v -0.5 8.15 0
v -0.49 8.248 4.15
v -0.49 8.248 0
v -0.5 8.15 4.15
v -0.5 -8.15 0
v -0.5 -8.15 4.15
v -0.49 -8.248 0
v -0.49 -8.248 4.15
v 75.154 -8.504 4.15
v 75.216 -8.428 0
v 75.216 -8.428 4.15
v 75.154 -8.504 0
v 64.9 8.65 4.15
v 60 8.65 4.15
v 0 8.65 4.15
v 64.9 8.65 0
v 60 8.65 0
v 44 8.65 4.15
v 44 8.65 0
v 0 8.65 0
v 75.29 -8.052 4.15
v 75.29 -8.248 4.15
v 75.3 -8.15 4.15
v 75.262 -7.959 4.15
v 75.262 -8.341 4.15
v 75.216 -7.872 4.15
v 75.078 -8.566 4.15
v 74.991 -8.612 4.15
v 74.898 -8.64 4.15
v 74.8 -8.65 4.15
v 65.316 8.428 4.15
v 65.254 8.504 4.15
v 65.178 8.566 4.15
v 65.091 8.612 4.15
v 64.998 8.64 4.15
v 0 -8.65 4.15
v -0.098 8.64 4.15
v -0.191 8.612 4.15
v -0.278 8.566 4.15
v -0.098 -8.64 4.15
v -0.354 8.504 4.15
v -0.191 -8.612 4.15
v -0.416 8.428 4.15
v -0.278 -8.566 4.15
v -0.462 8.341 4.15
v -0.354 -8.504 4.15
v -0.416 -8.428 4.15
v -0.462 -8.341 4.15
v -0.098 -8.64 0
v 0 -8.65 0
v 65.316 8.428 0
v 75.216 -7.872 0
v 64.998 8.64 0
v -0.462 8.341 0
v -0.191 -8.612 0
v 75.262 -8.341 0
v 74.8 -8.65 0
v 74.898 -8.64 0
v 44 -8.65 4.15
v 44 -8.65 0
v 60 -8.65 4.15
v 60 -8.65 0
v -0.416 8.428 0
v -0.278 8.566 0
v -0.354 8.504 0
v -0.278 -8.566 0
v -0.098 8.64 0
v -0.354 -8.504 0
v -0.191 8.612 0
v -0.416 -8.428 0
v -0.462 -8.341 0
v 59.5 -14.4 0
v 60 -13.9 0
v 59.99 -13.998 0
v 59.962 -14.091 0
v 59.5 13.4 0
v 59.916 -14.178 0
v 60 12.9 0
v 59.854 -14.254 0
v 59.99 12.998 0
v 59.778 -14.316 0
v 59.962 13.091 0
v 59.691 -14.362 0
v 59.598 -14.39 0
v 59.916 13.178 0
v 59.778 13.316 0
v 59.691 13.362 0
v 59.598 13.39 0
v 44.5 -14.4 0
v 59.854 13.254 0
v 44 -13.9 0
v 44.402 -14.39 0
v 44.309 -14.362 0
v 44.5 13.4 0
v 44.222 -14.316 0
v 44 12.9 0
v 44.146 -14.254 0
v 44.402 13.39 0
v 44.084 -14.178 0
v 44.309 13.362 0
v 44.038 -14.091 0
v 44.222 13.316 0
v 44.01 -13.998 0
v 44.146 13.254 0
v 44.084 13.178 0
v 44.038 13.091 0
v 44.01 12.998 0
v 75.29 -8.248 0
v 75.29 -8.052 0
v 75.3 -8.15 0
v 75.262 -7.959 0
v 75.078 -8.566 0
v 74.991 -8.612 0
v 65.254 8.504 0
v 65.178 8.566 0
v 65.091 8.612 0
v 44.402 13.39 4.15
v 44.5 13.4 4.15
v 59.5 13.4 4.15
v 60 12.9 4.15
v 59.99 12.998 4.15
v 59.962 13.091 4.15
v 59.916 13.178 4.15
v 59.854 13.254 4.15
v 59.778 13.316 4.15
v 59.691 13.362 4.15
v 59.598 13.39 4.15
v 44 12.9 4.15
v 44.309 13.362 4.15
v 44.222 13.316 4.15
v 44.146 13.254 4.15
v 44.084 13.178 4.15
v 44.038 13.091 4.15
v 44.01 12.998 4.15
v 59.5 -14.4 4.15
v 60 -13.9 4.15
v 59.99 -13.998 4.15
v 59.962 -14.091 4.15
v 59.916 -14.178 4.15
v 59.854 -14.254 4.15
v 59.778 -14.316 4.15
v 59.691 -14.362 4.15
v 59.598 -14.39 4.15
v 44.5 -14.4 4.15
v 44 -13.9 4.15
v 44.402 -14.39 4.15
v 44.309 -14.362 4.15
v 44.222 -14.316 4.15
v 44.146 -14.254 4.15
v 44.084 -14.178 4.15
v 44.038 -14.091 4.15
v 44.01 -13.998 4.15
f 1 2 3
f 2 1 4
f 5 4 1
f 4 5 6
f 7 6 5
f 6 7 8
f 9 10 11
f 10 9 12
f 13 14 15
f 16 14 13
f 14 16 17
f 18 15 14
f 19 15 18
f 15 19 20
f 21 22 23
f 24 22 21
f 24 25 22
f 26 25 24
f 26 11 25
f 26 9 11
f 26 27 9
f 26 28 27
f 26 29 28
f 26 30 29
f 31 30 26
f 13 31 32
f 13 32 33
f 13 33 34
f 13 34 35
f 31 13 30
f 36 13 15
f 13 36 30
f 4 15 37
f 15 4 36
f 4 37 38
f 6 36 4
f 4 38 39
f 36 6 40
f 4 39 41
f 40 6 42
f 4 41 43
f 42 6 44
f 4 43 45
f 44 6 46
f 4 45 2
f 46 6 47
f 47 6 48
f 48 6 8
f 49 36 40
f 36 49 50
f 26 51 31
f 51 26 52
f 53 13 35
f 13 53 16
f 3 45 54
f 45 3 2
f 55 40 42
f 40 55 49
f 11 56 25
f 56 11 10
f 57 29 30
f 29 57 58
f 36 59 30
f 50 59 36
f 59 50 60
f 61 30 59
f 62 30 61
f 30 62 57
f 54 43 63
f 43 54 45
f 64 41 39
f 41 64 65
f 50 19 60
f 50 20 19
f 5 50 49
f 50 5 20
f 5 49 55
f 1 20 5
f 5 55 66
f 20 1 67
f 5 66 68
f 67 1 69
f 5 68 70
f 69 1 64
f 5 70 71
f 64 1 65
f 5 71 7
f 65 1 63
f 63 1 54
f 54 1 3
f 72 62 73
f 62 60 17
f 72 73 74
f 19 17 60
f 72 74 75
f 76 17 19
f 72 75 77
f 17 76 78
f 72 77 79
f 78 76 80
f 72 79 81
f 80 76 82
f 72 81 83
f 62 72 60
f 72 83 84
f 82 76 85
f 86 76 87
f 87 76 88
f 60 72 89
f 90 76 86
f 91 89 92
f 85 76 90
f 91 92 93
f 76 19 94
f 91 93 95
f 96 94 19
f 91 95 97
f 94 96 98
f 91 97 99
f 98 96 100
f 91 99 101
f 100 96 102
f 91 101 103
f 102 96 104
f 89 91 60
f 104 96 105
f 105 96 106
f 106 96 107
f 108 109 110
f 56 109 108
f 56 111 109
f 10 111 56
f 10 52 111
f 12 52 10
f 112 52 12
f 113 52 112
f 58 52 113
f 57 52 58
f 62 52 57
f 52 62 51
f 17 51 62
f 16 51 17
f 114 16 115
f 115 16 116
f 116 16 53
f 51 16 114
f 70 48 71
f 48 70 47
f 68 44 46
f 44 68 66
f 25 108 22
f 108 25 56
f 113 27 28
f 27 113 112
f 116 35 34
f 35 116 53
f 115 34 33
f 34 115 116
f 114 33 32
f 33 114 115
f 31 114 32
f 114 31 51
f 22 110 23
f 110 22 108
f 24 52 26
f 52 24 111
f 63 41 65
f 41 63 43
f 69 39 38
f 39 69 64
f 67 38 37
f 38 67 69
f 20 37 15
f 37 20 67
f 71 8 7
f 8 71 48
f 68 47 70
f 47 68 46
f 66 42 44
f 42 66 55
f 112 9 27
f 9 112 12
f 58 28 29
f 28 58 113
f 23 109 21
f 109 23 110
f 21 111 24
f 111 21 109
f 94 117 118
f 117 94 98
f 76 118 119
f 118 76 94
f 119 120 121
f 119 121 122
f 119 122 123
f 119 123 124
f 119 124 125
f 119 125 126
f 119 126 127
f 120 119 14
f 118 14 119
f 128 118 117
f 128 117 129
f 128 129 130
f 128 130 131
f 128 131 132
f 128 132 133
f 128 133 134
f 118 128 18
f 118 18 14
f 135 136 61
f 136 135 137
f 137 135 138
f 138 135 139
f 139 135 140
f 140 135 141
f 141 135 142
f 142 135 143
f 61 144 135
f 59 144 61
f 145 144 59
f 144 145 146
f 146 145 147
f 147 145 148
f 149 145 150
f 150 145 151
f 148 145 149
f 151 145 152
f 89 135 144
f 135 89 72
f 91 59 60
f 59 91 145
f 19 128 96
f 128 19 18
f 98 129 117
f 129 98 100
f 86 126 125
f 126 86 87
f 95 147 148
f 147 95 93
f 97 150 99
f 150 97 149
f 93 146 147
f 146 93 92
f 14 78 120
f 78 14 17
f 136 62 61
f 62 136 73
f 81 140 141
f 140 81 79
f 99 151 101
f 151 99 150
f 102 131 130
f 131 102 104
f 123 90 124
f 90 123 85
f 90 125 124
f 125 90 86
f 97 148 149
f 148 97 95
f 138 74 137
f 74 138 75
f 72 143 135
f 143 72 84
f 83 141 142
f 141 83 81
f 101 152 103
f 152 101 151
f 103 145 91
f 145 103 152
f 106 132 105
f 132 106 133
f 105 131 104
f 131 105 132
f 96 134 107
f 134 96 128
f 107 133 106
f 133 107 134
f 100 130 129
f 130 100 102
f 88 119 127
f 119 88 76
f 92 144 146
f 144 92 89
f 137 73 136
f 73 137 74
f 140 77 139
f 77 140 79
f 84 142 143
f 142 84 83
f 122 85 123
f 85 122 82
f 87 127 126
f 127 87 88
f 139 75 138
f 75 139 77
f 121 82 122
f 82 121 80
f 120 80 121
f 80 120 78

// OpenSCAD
$fa = .01;
$fs = $preview ? 5 : .1;


w1 = 16.8;
w2 = 27.8;
l_major = 75.3;
l_minor = 65.4;
l_inner = 16.0;
h = 4.15;
dx = 44.5;

r_round = .5;
d_round = 2 * r_round;
module pos() {
    hull() {
        translate([0, (w1 - r_round) / 2, 0]) cylinder(h = h, r = r_round);
        translate([0, - (w1 - r_round) / 2, 0]) cylinder(h = h, r = r_round);
        translate([l_minor - r_round, (w1 - r_round) / 2, 0]) cylinder(h = h, r = r_round);
        translate([l_major - r_round, - (w1 - r_round) / 2, 0]) cylinder(h = h, r = r_round);
    }
    translate([dx, - w2 / 2, 0]) minkowski() {
        cube([l_inner - d_round, w2 - d_round, h - .1]);
        cylinder(h = .1, r = r_round);
    }
}

difference() {
    pos();
    translate([0, 0, - .1]) scale([0, 0, 1.1]) {

    }
}
